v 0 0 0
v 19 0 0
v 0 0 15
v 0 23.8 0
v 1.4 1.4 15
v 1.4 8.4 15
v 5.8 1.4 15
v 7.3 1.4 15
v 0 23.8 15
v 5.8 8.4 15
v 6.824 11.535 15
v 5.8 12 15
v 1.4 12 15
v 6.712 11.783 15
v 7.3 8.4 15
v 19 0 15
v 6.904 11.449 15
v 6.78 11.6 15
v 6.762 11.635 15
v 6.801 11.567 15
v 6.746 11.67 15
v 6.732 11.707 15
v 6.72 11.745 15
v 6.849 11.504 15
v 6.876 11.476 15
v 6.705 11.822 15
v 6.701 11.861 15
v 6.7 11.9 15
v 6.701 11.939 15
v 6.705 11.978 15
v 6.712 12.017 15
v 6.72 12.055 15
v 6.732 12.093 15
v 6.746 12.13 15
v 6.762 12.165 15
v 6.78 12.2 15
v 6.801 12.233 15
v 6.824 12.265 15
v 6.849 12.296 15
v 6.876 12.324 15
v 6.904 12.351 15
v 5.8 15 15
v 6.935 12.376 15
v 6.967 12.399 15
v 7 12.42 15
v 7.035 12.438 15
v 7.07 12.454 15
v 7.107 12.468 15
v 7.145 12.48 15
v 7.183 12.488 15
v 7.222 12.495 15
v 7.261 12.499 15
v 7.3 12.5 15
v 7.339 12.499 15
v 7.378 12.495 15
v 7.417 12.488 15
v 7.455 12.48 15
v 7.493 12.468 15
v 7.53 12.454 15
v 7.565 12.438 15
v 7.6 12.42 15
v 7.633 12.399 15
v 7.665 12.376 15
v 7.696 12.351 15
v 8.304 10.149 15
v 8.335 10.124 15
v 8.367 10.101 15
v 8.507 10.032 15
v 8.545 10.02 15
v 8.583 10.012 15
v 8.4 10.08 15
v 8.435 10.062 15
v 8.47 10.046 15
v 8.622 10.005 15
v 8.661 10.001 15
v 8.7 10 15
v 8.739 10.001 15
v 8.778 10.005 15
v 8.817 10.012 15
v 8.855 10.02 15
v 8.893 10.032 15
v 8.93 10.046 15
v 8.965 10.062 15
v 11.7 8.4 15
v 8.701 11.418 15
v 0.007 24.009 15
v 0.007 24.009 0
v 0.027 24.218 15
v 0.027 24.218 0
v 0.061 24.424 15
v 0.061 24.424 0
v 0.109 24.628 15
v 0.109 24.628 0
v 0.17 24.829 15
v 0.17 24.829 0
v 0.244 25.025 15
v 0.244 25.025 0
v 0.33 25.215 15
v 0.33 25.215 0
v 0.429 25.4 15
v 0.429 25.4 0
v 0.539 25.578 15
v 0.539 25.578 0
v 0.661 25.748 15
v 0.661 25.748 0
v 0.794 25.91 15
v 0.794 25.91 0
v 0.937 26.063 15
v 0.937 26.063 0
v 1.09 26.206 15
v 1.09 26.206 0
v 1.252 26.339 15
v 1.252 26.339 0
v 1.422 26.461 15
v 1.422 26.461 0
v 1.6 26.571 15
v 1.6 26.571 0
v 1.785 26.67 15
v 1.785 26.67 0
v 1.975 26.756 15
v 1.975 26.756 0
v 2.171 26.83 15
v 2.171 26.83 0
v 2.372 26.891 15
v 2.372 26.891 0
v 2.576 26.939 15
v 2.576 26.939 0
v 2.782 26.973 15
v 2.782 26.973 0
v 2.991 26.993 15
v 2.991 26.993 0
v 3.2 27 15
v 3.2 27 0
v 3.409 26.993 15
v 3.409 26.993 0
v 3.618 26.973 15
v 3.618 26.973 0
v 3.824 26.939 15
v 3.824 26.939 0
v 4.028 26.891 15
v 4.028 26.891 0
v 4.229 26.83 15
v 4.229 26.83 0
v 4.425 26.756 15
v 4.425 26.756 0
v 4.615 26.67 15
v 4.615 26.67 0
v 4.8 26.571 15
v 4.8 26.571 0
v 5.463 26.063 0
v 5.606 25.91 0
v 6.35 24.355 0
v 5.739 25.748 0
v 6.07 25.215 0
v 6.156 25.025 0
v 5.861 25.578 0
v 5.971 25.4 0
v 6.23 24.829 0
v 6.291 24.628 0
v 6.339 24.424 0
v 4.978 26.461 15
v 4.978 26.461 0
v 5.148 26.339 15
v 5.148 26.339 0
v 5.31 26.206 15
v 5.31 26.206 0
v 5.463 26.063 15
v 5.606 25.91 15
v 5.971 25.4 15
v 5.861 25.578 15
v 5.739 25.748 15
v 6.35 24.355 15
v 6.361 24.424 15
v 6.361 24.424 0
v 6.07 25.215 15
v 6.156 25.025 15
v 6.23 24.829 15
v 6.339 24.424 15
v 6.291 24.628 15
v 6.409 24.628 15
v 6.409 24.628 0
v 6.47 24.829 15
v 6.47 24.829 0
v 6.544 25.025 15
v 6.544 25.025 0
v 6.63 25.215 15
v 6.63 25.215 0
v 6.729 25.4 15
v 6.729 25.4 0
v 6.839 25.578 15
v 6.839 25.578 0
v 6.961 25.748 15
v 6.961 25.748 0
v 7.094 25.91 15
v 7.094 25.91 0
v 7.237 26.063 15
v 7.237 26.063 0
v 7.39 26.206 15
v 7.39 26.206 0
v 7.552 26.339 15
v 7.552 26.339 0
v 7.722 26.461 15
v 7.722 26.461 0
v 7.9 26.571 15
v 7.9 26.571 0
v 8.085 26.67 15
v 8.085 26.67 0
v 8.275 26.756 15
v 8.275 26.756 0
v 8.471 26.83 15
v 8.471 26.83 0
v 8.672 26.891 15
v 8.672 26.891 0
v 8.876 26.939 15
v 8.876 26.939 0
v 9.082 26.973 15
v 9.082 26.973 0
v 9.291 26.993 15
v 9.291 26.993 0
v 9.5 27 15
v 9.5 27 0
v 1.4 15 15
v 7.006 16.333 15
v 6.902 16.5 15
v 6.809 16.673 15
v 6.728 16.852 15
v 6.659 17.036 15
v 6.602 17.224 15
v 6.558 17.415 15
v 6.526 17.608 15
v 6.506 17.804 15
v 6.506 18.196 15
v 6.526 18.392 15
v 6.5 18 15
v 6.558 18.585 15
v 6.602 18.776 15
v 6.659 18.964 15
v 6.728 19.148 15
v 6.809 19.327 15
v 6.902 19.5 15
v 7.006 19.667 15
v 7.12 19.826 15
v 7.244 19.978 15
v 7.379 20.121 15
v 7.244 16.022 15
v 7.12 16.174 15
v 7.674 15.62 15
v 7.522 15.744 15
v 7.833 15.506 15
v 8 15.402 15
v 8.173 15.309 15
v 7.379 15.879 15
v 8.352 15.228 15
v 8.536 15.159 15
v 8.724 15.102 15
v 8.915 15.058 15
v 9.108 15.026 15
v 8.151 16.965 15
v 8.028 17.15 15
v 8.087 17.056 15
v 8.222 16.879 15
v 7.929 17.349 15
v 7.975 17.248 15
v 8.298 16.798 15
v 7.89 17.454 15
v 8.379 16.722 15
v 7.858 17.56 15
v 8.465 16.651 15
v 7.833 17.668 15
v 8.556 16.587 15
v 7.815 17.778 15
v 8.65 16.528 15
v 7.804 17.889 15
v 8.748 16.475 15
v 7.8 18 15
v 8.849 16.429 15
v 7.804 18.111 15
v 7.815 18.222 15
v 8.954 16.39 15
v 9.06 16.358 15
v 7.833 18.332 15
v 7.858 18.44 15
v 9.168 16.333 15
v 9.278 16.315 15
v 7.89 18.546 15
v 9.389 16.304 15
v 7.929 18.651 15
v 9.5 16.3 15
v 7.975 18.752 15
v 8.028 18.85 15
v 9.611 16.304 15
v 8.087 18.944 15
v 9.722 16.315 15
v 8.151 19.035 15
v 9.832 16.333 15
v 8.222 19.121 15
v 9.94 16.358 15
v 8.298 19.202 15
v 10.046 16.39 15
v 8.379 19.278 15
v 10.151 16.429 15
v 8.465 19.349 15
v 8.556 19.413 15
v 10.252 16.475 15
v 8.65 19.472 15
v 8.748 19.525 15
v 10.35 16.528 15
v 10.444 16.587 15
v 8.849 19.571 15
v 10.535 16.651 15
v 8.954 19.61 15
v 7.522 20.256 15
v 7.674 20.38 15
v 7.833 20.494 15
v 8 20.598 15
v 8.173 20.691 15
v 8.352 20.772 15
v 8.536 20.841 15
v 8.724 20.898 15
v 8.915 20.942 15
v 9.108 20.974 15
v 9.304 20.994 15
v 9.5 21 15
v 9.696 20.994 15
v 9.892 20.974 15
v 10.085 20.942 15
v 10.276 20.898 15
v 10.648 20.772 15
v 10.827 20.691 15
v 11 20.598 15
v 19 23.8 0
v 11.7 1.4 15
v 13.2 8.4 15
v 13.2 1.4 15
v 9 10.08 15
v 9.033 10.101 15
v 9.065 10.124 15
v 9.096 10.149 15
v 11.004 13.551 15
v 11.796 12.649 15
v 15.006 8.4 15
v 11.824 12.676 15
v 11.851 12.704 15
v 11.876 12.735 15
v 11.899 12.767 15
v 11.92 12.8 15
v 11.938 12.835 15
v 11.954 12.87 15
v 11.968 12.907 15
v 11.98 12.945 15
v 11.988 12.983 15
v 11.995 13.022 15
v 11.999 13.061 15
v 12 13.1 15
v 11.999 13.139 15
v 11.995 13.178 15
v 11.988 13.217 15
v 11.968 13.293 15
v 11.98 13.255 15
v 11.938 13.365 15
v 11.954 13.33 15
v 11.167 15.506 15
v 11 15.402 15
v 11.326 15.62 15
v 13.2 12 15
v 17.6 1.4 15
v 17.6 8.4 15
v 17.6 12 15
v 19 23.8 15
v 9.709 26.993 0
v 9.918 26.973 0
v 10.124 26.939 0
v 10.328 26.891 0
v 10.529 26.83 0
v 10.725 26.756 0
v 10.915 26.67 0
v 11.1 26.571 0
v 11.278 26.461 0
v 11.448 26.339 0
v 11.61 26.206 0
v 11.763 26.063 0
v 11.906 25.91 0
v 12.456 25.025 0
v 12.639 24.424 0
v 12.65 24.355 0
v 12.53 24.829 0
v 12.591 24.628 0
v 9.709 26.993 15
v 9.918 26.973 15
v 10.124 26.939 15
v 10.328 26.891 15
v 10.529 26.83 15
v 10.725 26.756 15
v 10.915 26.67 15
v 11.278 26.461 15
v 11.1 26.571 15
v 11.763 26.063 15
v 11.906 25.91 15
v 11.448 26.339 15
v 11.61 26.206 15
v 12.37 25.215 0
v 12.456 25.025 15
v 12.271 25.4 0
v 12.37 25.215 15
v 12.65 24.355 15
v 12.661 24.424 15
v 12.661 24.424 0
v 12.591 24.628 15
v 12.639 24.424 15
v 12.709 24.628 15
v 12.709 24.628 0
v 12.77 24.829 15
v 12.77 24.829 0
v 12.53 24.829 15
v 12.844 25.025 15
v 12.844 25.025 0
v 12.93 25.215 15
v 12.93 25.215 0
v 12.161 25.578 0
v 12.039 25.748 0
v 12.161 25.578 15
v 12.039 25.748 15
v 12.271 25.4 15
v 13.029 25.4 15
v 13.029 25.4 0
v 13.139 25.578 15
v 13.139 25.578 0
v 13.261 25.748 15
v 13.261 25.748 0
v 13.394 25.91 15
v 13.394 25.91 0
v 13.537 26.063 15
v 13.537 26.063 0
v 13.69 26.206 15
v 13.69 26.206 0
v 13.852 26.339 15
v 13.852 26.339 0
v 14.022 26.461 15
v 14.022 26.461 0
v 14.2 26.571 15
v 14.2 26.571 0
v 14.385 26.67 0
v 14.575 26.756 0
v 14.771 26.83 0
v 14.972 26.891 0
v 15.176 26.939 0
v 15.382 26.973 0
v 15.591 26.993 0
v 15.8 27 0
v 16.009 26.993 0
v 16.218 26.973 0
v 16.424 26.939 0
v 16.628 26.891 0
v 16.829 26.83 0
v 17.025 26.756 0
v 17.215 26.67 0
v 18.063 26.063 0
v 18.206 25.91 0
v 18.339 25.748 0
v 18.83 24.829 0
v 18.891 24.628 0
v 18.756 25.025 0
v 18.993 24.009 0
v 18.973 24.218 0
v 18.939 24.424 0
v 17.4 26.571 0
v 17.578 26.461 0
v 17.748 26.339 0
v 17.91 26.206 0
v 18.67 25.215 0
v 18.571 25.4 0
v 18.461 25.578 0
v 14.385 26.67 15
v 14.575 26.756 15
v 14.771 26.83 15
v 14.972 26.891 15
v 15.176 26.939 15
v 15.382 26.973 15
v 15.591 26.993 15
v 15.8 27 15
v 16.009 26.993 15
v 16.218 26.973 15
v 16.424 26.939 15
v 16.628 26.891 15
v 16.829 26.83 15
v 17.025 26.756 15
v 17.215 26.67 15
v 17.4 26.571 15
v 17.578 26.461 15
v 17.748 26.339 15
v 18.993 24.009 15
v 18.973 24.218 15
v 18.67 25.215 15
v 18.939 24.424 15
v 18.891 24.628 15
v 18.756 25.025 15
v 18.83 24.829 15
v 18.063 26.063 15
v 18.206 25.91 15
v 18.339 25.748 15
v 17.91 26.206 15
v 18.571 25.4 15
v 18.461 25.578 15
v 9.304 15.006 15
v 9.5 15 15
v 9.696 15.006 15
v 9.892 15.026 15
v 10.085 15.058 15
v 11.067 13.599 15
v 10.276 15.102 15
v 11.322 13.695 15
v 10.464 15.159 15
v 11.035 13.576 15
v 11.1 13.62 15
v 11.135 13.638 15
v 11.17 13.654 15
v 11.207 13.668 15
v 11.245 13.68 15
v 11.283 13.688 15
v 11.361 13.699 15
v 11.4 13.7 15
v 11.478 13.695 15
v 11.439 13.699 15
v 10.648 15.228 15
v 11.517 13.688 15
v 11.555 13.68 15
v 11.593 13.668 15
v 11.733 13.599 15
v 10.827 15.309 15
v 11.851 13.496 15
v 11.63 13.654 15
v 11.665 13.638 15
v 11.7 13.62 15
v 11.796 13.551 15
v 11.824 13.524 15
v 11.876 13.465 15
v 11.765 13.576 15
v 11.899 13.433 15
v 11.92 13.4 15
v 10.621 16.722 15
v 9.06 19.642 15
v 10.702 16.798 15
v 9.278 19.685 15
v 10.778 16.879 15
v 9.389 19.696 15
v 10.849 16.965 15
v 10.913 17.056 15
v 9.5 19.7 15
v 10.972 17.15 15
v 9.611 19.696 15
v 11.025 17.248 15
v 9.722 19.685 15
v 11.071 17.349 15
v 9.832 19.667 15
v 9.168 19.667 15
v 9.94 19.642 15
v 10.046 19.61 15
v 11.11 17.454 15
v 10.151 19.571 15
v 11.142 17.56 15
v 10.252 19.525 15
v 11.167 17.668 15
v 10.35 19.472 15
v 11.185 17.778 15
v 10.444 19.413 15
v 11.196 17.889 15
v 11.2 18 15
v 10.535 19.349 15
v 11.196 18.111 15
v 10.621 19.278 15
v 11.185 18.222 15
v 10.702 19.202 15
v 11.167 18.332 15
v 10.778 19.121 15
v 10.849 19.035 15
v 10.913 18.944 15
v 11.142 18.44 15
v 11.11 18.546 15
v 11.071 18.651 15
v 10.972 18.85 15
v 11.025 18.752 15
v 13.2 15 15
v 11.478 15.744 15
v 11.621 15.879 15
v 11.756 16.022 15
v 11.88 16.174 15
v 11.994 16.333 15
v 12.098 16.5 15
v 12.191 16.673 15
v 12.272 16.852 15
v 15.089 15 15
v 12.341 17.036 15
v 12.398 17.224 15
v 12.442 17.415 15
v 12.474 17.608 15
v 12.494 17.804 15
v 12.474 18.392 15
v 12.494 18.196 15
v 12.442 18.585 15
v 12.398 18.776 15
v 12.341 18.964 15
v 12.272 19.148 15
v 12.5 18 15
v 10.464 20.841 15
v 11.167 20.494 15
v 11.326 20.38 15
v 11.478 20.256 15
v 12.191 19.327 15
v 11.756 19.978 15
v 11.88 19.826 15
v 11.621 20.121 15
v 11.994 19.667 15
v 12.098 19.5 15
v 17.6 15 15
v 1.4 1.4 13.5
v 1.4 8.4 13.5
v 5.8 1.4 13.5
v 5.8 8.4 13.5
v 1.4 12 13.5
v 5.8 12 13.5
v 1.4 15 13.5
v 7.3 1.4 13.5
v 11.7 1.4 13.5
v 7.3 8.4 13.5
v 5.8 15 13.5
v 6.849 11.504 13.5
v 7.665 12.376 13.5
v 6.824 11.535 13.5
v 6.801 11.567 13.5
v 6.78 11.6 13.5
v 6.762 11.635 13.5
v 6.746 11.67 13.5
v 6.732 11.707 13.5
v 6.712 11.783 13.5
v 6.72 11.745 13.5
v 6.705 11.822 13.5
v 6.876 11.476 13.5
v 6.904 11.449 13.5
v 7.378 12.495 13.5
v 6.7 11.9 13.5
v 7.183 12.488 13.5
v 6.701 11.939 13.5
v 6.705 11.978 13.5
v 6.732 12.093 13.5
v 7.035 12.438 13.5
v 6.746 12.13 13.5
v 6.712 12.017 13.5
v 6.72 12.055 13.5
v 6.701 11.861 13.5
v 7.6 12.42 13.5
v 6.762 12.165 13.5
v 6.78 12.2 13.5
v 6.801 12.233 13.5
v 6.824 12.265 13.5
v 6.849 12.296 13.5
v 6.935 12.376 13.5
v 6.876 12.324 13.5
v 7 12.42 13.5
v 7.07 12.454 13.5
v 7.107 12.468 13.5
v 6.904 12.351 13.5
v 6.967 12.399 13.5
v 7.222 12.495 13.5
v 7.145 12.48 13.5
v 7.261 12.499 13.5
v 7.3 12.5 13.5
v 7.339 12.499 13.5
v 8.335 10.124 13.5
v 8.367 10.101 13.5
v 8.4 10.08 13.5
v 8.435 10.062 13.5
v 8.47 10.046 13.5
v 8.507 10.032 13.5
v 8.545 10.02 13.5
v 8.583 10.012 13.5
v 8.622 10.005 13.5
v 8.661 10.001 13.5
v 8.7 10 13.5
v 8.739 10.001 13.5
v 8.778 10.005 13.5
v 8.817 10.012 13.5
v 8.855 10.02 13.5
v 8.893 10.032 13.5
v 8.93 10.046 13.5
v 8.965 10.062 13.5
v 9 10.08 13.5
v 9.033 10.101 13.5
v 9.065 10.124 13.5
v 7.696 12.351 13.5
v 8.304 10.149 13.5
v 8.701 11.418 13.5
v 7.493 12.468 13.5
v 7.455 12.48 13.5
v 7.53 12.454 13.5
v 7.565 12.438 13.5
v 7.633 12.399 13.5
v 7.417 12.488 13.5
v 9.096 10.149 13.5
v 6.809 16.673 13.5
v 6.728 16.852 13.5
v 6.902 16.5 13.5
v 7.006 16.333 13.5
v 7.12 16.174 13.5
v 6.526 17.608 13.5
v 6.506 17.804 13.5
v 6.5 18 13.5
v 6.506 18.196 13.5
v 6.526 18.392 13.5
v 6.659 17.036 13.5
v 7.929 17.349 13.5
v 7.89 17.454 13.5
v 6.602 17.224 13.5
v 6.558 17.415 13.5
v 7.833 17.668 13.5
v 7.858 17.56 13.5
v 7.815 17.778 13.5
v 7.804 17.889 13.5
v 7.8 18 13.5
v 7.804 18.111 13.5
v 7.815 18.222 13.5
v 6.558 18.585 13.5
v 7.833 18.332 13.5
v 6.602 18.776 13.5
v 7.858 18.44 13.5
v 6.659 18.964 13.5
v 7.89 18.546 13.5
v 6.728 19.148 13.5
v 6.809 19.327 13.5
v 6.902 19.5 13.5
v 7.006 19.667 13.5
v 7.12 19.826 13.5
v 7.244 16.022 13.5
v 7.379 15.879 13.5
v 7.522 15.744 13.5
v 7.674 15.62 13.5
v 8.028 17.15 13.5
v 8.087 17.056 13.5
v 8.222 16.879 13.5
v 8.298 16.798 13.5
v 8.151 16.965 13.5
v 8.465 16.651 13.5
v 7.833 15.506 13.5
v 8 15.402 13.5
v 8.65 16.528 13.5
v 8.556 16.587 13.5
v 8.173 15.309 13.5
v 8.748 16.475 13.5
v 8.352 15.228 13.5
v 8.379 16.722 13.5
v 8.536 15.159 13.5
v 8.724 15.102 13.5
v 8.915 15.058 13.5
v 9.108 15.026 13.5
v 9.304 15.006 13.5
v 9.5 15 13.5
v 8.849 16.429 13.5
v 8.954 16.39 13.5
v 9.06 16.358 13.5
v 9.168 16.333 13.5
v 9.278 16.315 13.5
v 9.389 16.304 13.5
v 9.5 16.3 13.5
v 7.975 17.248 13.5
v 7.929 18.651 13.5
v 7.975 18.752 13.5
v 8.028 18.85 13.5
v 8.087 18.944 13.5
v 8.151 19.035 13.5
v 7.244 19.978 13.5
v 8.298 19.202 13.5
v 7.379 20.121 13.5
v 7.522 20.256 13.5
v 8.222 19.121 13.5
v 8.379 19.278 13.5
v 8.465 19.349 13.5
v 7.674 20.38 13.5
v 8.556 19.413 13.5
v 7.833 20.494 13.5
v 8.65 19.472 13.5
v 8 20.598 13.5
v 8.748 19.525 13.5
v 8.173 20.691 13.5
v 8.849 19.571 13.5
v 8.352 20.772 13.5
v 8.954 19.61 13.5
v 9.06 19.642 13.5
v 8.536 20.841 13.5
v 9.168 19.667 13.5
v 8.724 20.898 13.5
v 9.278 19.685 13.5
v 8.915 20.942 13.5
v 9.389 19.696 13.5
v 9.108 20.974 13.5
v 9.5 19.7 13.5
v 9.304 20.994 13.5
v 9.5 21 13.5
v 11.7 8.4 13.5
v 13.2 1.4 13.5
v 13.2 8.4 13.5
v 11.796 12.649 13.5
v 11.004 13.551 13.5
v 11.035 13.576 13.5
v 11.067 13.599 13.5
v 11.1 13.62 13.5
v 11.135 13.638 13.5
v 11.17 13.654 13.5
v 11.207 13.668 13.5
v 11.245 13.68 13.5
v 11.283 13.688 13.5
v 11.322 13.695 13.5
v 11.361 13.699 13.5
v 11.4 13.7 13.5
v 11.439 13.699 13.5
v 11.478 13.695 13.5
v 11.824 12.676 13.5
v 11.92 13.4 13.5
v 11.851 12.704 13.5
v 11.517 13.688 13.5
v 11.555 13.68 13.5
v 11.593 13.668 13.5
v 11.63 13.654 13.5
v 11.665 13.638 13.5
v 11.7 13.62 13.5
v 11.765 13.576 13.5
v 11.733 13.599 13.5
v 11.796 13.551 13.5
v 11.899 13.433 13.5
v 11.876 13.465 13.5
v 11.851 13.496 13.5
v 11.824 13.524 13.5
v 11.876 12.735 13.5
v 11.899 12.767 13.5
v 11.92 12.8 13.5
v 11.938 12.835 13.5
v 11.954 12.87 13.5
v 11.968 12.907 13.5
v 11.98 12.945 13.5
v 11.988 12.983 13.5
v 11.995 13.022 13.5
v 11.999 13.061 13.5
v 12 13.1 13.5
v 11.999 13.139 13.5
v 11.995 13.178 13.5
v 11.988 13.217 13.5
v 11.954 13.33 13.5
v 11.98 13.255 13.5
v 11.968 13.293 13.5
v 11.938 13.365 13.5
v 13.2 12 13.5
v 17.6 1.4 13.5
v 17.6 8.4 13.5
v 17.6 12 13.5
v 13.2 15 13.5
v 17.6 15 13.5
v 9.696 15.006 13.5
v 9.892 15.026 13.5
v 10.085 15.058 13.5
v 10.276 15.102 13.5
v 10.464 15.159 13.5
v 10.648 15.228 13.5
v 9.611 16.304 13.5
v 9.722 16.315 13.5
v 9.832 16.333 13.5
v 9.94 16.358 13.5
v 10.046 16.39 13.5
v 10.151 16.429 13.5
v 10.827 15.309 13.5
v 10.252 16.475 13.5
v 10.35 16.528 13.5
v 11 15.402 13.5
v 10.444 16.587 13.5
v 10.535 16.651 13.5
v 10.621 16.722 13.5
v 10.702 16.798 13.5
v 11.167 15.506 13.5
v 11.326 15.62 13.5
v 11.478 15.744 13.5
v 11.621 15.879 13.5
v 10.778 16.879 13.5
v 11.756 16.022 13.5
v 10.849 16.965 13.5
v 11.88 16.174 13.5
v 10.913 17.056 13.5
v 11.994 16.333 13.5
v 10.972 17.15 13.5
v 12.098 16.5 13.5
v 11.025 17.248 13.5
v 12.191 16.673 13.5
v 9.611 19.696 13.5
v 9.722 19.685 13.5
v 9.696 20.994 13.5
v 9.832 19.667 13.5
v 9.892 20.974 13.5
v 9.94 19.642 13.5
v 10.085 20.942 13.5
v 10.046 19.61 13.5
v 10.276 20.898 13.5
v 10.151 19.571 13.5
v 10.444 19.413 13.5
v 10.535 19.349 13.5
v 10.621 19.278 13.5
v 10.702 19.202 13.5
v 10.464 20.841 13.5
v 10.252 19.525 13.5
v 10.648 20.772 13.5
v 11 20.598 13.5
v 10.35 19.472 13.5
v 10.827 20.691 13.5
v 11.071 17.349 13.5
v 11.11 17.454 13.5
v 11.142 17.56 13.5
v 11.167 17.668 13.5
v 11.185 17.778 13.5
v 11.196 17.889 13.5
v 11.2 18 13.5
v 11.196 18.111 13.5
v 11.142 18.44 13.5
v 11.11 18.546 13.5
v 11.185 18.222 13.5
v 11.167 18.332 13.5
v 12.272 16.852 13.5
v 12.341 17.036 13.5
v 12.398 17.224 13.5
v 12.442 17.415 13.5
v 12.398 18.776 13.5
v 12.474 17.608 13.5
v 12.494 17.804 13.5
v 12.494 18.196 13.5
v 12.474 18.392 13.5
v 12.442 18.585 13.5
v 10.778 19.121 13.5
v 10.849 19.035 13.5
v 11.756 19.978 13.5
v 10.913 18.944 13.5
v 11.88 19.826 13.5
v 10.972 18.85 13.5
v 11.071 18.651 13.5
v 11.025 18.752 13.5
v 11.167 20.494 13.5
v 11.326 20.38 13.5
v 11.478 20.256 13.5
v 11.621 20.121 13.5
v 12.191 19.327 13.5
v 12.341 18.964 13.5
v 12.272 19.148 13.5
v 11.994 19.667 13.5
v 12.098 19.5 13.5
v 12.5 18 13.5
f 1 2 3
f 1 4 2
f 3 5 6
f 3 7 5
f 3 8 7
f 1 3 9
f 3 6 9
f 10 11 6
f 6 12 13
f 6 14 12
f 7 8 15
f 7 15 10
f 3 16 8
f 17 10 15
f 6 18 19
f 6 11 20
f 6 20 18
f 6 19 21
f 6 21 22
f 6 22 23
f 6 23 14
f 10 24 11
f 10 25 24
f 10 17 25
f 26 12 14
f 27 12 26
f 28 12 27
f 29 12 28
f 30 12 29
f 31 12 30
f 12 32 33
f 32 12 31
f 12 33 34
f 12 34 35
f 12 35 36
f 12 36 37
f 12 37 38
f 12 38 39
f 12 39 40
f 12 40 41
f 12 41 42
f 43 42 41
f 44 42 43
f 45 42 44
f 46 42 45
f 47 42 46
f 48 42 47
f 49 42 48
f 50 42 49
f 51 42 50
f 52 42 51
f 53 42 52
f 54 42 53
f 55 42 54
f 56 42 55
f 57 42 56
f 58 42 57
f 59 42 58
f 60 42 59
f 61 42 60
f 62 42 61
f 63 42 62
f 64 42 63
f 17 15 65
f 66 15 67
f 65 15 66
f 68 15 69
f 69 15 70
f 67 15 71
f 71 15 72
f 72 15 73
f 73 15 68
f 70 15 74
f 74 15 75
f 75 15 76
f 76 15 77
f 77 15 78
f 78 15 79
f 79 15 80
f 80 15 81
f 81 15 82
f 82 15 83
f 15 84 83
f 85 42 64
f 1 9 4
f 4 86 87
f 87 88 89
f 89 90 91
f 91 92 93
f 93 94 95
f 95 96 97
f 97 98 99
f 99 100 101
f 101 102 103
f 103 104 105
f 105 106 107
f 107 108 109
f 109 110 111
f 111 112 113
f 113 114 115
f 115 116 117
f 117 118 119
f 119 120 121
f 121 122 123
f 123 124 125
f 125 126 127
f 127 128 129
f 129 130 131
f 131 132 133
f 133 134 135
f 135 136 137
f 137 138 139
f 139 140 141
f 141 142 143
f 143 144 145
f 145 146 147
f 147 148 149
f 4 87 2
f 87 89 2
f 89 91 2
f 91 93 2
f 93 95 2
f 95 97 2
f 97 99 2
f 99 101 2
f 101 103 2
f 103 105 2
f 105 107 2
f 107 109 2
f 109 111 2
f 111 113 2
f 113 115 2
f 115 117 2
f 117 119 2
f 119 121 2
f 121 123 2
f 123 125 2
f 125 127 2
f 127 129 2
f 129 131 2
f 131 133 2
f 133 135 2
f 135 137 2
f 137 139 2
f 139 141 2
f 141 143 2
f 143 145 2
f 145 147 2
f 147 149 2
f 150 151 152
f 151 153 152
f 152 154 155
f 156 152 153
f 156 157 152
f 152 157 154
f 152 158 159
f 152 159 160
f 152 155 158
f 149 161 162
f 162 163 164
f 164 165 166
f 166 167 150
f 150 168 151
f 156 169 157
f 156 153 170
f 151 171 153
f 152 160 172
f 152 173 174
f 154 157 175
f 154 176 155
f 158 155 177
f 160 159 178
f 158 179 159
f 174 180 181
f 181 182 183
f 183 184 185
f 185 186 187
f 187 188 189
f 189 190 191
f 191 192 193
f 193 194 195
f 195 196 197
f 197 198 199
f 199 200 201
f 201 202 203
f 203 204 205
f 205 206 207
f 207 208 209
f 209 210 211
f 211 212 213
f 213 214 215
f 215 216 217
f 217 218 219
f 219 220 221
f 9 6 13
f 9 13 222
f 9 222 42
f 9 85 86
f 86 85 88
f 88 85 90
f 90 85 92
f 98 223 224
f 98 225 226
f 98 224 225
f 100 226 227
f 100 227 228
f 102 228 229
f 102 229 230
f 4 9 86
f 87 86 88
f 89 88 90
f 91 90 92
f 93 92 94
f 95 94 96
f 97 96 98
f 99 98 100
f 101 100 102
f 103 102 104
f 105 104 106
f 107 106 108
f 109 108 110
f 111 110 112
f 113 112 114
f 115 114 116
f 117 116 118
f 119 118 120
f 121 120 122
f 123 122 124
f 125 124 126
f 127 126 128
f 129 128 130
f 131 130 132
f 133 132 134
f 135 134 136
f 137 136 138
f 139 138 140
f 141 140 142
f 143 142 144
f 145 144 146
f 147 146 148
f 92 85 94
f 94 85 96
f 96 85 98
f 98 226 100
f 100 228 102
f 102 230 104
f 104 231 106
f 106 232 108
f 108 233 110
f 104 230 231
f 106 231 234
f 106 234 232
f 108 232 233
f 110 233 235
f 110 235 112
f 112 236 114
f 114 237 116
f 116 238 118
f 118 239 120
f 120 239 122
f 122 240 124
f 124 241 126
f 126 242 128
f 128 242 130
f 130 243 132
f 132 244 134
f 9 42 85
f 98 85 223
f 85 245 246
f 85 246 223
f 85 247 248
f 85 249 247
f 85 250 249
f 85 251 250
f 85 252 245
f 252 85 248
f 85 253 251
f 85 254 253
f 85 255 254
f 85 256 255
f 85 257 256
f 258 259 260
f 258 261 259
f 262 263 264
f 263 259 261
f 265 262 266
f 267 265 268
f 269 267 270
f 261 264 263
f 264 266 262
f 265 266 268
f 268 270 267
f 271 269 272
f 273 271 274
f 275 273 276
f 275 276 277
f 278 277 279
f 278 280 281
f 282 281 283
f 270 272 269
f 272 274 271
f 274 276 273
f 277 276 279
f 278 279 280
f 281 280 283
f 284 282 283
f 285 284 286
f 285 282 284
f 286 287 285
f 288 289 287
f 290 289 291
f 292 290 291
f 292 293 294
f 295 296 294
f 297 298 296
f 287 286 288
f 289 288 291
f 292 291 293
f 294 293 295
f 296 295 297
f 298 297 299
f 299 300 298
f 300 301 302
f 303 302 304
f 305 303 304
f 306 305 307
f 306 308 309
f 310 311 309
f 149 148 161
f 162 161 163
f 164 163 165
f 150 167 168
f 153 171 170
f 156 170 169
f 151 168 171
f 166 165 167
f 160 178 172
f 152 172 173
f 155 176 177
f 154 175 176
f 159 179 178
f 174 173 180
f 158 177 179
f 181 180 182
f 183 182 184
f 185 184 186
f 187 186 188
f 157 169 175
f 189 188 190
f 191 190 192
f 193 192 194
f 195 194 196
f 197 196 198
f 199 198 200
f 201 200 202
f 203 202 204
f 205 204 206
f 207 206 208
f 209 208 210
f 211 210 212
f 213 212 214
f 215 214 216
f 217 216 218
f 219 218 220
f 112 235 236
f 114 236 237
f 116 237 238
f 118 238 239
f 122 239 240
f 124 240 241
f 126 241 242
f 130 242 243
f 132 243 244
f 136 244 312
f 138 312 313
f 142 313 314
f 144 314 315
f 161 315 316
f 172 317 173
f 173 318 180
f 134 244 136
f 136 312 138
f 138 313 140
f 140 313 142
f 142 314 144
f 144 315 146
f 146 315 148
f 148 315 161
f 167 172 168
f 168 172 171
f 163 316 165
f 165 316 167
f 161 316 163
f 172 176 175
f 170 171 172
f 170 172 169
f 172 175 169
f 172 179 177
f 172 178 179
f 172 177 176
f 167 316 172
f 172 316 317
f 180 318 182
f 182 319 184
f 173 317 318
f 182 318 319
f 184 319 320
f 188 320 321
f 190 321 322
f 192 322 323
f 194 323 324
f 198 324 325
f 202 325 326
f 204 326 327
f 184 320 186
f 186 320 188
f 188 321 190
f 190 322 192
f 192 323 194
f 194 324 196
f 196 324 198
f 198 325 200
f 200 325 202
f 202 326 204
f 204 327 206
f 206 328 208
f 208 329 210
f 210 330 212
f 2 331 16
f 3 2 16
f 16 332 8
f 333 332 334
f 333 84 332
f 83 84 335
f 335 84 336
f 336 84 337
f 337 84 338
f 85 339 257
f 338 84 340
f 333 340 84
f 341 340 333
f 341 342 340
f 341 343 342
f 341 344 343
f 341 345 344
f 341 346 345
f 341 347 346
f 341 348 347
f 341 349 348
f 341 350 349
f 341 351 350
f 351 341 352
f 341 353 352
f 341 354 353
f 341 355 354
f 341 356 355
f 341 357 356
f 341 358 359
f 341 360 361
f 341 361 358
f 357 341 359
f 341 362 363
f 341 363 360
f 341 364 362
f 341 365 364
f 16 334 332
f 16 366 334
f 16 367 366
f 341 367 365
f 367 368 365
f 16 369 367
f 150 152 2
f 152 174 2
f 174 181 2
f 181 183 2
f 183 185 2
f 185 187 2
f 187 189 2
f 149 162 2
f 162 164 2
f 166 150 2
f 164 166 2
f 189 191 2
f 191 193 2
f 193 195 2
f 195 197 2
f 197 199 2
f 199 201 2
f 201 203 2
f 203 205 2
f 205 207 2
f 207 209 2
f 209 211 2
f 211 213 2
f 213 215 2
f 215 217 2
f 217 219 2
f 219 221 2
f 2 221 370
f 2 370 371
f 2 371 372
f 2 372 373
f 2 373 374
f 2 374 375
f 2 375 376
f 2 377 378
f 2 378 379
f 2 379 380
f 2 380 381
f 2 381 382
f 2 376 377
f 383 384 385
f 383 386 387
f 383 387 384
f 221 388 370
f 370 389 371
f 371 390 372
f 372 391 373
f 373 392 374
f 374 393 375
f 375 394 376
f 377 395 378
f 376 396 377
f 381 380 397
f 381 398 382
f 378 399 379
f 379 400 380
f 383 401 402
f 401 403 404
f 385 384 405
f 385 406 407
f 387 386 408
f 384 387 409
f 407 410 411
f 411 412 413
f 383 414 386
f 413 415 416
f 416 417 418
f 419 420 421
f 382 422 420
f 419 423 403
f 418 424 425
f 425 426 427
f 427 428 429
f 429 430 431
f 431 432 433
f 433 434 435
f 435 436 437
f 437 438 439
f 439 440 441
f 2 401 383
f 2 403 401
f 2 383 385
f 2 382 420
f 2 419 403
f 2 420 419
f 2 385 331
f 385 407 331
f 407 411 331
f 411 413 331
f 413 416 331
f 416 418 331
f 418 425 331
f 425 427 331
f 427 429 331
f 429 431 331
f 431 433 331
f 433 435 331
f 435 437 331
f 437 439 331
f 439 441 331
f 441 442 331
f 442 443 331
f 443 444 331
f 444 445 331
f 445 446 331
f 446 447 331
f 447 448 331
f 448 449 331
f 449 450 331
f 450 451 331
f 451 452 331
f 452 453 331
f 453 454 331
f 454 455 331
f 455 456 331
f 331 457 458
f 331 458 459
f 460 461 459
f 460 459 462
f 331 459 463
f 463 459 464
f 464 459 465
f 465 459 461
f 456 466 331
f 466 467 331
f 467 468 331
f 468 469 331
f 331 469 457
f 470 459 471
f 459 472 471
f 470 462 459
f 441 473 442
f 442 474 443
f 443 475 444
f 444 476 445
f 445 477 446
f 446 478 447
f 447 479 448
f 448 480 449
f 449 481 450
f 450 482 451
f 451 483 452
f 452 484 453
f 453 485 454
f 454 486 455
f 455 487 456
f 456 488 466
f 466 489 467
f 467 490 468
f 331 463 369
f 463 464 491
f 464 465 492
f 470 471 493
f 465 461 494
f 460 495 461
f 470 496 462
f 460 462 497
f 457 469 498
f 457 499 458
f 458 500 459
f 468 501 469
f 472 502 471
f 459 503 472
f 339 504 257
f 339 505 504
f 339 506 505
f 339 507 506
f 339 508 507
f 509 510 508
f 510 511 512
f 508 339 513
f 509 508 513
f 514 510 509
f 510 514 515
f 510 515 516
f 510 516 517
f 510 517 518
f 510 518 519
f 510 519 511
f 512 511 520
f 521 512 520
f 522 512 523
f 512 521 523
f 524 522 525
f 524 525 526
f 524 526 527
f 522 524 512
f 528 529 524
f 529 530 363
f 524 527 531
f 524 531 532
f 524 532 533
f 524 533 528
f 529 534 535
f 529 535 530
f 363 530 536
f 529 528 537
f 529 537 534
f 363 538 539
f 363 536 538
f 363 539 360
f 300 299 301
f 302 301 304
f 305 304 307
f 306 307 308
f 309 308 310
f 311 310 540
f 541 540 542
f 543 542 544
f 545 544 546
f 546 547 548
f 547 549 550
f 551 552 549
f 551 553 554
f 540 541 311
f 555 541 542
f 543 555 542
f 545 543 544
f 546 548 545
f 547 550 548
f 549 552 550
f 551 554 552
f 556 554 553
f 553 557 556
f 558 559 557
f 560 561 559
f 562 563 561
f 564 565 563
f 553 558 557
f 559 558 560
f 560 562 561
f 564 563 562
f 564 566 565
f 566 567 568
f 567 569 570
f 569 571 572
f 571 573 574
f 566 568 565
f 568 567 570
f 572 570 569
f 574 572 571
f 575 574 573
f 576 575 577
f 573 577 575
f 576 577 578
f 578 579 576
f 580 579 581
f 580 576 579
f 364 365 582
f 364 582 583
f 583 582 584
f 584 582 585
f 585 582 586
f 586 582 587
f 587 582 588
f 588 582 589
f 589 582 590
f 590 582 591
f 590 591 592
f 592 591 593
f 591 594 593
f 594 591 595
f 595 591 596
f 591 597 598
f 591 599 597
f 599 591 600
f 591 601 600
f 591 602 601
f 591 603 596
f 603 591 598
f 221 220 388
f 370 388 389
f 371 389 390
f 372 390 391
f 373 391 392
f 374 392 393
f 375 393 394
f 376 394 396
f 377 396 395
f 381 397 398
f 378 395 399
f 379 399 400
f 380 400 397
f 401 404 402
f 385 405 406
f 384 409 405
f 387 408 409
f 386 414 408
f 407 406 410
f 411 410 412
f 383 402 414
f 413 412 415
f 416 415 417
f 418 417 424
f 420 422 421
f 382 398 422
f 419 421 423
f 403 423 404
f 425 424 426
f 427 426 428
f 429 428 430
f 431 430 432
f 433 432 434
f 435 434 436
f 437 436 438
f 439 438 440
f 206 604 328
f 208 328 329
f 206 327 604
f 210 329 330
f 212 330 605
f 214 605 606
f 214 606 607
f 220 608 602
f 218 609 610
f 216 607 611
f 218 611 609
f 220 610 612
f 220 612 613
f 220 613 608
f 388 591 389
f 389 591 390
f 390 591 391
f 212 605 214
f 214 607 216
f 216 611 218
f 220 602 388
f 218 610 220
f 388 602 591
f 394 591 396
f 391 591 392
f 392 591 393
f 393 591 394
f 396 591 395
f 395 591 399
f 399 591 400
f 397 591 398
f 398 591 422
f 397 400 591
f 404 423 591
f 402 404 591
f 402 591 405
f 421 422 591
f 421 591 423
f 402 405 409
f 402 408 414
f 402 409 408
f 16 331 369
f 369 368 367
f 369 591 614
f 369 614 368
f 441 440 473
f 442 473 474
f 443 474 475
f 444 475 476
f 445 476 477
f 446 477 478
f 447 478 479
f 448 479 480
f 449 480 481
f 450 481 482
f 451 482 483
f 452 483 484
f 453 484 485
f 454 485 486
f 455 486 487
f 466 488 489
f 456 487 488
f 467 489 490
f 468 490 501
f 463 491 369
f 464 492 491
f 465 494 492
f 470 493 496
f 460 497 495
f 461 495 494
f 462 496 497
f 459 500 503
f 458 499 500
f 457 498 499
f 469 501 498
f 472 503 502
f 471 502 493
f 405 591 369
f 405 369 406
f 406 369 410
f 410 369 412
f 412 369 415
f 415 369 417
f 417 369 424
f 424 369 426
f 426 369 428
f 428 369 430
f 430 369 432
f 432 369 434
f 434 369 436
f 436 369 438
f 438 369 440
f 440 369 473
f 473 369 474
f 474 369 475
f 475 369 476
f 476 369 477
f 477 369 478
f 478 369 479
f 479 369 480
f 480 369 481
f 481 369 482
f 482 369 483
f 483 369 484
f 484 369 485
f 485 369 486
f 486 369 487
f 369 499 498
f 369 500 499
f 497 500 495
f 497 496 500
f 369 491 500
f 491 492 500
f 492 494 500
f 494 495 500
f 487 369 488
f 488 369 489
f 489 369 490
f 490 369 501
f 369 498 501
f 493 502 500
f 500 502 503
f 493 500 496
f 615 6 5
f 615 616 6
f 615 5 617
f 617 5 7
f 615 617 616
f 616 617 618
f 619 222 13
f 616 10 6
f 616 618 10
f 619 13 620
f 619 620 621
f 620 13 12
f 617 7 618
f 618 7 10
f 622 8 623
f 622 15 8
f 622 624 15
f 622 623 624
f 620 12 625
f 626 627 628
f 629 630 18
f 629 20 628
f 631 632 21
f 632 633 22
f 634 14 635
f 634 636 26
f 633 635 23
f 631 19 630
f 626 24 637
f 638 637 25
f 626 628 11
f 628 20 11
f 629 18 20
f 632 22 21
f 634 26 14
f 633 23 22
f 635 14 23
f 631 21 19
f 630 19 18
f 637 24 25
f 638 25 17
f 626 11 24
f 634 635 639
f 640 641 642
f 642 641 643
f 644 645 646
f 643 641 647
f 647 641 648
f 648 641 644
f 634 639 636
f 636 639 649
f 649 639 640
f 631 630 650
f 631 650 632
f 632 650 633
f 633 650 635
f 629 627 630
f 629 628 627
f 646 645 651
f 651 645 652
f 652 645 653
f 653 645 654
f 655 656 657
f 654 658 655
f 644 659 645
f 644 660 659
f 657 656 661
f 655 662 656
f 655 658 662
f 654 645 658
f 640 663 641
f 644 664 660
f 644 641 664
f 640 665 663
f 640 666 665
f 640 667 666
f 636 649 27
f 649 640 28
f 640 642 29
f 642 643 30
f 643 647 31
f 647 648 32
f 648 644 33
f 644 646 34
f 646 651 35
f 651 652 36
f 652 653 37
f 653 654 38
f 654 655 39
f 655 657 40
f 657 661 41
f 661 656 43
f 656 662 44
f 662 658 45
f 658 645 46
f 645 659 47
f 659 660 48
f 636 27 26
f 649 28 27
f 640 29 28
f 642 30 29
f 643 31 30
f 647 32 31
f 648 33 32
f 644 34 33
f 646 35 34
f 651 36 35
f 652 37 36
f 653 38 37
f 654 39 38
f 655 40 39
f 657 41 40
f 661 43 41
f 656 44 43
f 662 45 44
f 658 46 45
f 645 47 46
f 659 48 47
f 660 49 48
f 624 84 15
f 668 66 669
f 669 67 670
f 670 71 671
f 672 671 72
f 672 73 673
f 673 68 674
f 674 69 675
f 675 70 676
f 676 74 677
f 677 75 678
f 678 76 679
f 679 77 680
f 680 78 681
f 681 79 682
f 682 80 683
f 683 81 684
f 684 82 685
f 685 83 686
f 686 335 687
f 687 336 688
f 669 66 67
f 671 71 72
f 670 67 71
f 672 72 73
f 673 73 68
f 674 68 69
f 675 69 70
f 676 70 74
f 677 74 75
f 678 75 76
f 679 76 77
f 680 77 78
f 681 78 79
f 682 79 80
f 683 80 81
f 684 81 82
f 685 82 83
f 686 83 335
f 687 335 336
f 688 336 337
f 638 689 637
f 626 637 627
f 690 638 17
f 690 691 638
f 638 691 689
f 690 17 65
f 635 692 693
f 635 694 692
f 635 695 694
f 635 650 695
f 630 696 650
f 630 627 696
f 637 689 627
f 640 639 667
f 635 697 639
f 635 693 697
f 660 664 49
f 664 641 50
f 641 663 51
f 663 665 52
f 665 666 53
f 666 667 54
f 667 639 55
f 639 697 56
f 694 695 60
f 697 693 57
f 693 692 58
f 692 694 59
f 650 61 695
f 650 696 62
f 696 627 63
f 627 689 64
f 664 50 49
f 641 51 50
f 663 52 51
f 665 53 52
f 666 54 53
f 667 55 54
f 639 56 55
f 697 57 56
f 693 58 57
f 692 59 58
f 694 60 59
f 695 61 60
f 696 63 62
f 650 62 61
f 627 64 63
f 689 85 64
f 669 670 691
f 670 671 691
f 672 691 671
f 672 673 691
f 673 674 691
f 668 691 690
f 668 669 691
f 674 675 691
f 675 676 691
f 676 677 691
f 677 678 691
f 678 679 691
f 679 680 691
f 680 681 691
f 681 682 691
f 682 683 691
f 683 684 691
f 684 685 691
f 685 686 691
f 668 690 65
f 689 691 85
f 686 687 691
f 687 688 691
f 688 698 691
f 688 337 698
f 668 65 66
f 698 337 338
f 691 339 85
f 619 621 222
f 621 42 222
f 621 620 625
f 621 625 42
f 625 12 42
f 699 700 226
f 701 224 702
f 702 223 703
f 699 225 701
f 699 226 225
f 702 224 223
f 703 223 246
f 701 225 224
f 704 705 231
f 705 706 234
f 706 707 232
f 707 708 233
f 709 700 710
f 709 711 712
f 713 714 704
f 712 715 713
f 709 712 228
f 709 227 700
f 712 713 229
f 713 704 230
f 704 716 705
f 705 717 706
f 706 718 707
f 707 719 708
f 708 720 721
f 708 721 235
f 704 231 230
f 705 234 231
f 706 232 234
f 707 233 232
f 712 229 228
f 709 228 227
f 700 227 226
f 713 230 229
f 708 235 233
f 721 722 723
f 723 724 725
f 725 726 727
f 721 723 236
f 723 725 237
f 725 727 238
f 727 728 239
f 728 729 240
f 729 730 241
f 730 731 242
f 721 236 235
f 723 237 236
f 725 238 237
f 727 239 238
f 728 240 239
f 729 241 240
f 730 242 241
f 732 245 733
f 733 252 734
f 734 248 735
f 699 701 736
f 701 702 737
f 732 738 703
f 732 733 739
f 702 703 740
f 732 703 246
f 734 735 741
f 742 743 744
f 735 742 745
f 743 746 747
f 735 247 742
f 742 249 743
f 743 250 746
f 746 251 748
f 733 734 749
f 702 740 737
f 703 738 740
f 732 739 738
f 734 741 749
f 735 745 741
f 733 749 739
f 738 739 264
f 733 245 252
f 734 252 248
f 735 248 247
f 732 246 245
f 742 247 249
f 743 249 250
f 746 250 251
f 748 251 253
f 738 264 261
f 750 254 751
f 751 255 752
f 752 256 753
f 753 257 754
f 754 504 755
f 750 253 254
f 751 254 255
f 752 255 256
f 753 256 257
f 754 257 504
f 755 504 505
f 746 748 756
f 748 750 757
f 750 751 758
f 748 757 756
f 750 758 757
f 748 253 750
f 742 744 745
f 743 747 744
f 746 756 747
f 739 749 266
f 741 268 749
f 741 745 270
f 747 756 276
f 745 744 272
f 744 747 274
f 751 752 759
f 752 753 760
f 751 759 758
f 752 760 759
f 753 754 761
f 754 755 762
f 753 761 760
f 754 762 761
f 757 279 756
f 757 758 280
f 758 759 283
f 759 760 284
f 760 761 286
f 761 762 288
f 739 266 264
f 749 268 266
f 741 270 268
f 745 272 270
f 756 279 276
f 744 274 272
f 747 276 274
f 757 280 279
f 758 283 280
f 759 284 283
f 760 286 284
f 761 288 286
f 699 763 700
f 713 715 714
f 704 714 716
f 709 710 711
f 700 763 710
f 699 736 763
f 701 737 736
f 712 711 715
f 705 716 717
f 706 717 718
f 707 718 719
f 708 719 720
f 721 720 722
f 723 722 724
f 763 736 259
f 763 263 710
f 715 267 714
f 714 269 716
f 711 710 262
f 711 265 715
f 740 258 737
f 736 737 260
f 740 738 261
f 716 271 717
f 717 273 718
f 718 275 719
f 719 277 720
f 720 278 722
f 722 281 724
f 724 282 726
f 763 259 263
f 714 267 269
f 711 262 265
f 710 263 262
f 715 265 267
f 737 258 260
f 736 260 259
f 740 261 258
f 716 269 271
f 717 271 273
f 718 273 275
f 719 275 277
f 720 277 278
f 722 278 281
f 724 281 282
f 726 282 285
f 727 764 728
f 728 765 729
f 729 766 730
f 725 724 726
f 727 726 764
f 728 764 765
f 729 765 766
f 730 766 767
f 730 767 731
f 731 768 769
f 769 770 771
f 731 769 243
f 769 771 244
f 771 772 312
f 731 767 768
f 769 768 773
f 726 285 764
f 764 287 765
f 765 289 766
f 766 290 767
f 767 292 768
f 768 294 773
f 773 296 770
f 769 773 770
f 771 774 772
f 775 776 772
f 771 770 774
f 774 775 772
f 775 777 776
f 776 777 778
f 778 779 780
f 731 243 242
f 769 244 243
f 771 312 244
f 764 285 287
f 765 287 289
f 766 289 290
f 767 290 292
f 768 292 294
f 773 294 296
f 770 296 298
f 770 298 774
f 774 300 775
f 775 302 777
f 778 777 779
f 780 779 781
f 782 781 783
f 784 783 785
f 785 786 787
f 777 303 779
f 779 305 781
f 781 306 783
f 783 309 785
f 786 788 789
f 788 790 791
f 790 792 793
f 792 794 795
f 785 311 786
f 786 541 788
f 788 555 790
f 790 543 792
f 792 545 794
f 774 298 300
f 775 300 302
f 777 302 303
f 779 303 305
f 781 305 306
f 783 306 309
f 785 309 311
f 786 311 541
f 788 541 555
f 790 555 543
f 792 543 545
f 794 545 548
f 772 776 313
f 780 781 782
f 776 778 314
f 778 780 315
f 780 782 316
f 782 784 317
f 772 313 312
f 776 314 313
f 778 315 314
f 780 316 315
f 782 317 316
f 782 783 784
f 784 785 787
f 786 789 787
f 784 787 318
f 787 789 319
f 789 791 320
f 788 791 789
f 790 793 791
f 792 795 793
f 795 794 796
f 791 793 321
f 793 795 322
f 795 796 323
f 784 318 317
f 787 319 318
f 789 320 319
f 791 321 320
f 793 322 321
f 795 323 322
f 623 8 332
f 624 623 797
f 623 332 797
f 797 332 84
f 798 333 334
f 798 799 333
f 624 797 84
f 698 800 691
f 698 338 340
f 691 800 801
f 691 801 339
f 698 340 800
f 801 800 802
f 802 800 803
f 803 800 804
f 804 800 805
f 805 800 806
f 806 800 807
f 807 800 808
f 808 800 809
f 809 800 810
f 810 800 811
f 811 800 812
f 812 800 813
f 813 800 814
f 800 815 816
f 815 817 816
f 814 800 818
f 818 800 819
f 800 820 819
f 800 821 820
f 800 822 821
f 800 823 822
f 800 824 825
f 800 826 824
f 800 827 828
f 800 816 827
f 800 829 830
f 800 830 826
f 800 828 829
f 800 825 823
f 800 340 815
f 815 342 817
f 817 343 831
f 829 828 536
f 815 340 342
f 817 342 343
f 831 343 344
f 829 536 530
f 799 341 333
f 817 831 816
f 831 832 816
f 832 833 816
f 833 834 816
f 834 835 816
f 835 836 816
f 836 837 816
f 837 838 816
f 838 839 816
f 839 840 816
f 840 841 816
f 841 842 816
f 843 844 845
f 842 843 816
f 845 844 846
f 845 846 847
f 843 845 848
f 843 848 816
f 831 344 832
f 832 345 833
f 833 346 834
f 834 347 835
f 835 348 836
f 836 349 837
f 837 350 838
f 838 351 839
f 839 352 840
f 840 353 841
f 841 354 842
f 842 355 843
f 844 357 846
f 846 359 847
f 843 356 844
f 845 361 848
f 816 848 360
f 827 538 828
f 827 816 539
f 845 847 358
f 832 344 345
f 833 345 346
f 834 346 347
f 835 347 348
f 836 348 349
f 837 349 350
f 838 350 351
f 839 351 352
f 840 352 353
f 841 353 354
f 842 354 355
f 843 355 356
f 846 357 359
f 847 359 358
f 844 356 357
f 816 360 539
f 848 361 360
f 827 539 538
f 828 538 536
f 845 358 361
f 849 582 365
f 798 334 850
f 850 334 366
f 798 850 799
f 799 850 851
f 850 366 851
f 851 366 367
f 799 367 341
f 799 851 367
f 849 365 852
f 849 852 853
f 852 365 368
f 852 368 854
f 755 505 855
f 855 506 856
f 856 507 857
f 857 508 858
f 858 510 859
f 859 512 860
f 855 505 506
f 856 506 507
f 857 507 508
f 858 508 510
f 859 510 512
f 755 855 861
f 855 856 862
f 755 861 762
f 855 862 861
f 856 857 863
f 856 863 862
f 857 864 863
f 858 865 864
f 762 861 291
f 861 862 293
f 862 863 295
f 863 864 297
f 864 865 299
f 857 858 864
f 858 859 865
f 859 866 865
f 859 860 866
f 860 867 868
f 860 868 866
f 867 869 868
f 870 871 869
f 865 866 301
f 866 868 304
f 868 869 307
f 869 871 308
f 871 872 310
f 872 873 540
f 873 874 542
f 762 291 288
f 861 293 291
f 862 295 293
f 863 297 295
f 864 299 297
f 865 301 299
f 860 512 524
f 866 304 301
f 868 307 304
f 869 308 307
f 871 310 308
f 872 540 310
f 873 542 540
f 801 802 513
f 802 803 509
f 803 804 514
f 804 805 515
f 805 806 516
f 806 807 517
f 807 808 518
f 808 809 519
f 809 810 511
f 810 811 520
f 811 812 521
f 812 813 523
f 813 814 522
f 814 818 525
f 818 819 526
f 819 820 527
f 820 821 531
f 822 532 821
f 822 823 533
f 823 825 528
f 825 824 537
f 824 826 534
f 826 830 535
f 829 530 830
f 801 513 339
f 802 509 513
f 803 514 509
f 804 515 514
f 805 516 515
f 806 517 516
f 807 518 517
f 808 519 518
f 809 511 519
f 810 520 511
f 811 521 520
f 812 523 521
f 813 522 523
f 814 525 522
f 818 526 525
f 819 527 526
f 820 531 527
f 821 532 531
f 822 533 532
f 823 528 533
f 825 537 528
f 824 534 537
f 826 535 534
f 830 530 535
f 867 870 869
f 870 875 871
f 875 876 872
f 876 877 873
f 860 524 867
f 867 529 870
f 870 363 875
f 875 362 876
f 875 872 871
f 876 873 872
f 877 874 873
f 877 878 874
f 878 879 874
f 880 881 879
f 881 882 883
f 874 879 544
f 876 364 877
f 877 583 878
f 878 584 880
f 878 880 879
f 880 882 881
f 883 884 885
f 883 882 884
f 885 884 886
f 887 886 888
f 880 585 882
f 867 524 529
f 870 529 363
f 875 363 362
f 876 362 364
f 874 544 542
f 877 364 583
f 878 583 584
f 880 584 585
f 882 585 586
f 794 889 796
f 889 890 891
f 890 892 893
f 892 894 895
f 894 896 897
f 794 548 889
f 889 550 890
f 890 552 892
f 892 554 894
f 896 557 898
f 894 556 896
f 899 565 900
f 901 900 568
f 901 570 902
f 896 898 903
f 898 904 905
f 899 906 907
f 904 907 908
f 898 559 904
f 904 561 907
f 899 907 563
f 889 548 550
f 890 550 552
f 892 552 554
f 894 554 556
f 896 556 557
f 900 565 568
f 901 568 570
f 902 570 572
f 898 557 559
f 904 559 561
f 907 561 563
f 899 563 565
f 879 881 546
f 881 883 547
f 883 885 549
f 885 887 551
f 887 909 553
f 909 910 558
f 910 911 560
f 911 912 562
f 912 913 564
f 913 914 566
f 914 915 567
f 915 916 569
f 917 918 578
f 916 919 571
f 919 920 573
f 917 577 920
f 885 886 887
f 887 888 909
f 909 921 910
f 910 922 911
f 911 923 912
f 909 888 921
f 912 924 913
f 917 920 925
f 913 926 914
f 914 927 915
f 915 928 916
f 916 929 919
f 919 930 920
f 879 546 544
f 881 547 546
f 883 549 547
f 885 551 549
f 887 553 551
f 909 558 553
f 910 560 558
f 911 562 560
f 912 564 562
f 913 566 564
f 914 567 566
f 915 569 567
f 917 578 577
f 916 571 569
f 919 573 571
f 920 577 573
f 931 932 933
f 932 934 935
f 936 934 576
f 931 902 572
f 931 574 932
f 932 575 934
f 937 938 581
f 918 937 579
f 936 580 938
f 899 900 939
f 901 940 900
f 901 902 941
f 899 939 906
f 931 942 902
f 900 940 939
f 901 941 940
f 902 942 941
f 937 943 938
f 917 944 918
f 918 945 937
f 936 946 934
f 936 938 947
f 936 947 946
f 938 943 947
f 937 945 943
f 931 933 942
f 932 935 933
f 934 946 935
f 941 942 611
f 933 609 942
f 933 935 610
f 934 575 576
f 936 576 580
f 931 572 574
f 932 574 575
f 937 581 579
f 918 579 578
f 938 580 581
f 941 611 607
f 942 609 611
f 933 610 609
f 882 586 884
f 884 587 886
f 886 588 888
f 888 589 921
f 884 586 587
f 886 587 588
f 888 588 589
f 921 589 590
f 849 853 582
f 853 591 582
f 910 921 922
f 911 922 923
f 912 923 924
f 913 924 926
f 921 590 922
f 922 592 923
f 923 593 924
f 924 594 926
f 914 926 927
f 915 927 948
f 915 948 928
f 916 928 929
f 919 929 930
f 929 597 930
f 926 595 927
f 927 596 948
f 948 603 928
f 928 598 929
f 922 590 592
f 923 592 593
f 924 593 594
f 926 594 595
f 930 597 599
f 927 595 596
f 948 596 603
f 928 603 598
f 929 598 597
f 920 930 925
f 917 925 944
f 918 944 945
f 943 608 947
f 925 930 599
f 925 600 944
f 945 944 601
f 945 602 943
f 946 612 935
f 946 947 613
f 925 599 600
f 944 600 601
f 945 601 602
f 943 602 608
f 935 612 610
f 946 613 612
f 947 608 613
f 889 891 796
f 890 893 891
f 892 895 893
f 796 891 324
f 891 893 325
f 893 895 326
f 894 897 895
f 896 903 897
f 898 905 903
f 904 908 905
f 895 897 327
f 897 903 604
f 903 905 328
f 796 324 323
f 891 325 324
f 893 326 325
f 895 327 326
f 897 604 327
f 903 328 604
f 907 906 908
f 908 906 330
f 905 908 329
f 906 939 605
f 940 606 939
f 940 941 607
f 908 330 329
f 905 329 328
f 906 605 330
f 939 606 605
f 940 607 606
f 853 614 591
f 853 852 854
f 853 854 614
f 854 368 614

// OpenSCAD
// Building miniatures — Tech, AI & Digital
// Units: millimetres. X = width; Y = facade height; Z = depth.
// Print flat on the back at Z=0. Front Z=15; recesses are 1.5 mm deep.
$fn=96;
depth=15;
recess=1.5;
module rect(x,y,w,h) { translate([x,y]) square([w,h]); }
module disc(x,y,r) { translate([x,y]) circle(r=r); }
module rr(x,y,w,h,r=1) { hull() for(a=[x+r,x+w-r],b=[y+r,y+h-r]) disc(a,b,r); }
module stroke(a,b,w=1.4) { hull() {disc(a[0],a[1],w/2);disc(b[0],b[1],w/2);} }
module ring(x,y,r,w=1.4) { difference(){disc(x,y,r);disc(x,y,r-w);} }
module framed(x,y,w,h,t=1.4) { difference(){rect(x,y,w,h);rect(x+t,y+t,w-2*t,h-2*t);} }
module arrow(a,b,w=1.5) { v=b-a; u=v/norm(v); n=[-u[1],u[0]]; tip=b; neck=b-u*2.8; stroke(a,neck,w); polygon([tip,neck+n*1.9,neck-n*1.9]); }
module building(){difference(){linear_extrude(height=depth) silhouette();translate([0,0,depth-recess]) linear_extrude(height=recess+0.2) details();}}
building();

module silhouette(){union(){rect(0,0,19,22);for(x=[3.2,9.5,15.8]){rect(x-3.2,20,6.4,3.8);disc(x,23.8,3.2);}}}
module details(){
 for(x=[1.4,7.3,13.2]) rect(x,1.4,4.4,7);
 rect(1.4,12,4.4,3);rect(13.2,12,4.4,3);
 ring(9.5,18,3.0,1.3);
 stroke([7.3,11.9],[8.7,10.6],1.2);stroke([8.7,10.6],[11.4,13.1],1.2);
}
